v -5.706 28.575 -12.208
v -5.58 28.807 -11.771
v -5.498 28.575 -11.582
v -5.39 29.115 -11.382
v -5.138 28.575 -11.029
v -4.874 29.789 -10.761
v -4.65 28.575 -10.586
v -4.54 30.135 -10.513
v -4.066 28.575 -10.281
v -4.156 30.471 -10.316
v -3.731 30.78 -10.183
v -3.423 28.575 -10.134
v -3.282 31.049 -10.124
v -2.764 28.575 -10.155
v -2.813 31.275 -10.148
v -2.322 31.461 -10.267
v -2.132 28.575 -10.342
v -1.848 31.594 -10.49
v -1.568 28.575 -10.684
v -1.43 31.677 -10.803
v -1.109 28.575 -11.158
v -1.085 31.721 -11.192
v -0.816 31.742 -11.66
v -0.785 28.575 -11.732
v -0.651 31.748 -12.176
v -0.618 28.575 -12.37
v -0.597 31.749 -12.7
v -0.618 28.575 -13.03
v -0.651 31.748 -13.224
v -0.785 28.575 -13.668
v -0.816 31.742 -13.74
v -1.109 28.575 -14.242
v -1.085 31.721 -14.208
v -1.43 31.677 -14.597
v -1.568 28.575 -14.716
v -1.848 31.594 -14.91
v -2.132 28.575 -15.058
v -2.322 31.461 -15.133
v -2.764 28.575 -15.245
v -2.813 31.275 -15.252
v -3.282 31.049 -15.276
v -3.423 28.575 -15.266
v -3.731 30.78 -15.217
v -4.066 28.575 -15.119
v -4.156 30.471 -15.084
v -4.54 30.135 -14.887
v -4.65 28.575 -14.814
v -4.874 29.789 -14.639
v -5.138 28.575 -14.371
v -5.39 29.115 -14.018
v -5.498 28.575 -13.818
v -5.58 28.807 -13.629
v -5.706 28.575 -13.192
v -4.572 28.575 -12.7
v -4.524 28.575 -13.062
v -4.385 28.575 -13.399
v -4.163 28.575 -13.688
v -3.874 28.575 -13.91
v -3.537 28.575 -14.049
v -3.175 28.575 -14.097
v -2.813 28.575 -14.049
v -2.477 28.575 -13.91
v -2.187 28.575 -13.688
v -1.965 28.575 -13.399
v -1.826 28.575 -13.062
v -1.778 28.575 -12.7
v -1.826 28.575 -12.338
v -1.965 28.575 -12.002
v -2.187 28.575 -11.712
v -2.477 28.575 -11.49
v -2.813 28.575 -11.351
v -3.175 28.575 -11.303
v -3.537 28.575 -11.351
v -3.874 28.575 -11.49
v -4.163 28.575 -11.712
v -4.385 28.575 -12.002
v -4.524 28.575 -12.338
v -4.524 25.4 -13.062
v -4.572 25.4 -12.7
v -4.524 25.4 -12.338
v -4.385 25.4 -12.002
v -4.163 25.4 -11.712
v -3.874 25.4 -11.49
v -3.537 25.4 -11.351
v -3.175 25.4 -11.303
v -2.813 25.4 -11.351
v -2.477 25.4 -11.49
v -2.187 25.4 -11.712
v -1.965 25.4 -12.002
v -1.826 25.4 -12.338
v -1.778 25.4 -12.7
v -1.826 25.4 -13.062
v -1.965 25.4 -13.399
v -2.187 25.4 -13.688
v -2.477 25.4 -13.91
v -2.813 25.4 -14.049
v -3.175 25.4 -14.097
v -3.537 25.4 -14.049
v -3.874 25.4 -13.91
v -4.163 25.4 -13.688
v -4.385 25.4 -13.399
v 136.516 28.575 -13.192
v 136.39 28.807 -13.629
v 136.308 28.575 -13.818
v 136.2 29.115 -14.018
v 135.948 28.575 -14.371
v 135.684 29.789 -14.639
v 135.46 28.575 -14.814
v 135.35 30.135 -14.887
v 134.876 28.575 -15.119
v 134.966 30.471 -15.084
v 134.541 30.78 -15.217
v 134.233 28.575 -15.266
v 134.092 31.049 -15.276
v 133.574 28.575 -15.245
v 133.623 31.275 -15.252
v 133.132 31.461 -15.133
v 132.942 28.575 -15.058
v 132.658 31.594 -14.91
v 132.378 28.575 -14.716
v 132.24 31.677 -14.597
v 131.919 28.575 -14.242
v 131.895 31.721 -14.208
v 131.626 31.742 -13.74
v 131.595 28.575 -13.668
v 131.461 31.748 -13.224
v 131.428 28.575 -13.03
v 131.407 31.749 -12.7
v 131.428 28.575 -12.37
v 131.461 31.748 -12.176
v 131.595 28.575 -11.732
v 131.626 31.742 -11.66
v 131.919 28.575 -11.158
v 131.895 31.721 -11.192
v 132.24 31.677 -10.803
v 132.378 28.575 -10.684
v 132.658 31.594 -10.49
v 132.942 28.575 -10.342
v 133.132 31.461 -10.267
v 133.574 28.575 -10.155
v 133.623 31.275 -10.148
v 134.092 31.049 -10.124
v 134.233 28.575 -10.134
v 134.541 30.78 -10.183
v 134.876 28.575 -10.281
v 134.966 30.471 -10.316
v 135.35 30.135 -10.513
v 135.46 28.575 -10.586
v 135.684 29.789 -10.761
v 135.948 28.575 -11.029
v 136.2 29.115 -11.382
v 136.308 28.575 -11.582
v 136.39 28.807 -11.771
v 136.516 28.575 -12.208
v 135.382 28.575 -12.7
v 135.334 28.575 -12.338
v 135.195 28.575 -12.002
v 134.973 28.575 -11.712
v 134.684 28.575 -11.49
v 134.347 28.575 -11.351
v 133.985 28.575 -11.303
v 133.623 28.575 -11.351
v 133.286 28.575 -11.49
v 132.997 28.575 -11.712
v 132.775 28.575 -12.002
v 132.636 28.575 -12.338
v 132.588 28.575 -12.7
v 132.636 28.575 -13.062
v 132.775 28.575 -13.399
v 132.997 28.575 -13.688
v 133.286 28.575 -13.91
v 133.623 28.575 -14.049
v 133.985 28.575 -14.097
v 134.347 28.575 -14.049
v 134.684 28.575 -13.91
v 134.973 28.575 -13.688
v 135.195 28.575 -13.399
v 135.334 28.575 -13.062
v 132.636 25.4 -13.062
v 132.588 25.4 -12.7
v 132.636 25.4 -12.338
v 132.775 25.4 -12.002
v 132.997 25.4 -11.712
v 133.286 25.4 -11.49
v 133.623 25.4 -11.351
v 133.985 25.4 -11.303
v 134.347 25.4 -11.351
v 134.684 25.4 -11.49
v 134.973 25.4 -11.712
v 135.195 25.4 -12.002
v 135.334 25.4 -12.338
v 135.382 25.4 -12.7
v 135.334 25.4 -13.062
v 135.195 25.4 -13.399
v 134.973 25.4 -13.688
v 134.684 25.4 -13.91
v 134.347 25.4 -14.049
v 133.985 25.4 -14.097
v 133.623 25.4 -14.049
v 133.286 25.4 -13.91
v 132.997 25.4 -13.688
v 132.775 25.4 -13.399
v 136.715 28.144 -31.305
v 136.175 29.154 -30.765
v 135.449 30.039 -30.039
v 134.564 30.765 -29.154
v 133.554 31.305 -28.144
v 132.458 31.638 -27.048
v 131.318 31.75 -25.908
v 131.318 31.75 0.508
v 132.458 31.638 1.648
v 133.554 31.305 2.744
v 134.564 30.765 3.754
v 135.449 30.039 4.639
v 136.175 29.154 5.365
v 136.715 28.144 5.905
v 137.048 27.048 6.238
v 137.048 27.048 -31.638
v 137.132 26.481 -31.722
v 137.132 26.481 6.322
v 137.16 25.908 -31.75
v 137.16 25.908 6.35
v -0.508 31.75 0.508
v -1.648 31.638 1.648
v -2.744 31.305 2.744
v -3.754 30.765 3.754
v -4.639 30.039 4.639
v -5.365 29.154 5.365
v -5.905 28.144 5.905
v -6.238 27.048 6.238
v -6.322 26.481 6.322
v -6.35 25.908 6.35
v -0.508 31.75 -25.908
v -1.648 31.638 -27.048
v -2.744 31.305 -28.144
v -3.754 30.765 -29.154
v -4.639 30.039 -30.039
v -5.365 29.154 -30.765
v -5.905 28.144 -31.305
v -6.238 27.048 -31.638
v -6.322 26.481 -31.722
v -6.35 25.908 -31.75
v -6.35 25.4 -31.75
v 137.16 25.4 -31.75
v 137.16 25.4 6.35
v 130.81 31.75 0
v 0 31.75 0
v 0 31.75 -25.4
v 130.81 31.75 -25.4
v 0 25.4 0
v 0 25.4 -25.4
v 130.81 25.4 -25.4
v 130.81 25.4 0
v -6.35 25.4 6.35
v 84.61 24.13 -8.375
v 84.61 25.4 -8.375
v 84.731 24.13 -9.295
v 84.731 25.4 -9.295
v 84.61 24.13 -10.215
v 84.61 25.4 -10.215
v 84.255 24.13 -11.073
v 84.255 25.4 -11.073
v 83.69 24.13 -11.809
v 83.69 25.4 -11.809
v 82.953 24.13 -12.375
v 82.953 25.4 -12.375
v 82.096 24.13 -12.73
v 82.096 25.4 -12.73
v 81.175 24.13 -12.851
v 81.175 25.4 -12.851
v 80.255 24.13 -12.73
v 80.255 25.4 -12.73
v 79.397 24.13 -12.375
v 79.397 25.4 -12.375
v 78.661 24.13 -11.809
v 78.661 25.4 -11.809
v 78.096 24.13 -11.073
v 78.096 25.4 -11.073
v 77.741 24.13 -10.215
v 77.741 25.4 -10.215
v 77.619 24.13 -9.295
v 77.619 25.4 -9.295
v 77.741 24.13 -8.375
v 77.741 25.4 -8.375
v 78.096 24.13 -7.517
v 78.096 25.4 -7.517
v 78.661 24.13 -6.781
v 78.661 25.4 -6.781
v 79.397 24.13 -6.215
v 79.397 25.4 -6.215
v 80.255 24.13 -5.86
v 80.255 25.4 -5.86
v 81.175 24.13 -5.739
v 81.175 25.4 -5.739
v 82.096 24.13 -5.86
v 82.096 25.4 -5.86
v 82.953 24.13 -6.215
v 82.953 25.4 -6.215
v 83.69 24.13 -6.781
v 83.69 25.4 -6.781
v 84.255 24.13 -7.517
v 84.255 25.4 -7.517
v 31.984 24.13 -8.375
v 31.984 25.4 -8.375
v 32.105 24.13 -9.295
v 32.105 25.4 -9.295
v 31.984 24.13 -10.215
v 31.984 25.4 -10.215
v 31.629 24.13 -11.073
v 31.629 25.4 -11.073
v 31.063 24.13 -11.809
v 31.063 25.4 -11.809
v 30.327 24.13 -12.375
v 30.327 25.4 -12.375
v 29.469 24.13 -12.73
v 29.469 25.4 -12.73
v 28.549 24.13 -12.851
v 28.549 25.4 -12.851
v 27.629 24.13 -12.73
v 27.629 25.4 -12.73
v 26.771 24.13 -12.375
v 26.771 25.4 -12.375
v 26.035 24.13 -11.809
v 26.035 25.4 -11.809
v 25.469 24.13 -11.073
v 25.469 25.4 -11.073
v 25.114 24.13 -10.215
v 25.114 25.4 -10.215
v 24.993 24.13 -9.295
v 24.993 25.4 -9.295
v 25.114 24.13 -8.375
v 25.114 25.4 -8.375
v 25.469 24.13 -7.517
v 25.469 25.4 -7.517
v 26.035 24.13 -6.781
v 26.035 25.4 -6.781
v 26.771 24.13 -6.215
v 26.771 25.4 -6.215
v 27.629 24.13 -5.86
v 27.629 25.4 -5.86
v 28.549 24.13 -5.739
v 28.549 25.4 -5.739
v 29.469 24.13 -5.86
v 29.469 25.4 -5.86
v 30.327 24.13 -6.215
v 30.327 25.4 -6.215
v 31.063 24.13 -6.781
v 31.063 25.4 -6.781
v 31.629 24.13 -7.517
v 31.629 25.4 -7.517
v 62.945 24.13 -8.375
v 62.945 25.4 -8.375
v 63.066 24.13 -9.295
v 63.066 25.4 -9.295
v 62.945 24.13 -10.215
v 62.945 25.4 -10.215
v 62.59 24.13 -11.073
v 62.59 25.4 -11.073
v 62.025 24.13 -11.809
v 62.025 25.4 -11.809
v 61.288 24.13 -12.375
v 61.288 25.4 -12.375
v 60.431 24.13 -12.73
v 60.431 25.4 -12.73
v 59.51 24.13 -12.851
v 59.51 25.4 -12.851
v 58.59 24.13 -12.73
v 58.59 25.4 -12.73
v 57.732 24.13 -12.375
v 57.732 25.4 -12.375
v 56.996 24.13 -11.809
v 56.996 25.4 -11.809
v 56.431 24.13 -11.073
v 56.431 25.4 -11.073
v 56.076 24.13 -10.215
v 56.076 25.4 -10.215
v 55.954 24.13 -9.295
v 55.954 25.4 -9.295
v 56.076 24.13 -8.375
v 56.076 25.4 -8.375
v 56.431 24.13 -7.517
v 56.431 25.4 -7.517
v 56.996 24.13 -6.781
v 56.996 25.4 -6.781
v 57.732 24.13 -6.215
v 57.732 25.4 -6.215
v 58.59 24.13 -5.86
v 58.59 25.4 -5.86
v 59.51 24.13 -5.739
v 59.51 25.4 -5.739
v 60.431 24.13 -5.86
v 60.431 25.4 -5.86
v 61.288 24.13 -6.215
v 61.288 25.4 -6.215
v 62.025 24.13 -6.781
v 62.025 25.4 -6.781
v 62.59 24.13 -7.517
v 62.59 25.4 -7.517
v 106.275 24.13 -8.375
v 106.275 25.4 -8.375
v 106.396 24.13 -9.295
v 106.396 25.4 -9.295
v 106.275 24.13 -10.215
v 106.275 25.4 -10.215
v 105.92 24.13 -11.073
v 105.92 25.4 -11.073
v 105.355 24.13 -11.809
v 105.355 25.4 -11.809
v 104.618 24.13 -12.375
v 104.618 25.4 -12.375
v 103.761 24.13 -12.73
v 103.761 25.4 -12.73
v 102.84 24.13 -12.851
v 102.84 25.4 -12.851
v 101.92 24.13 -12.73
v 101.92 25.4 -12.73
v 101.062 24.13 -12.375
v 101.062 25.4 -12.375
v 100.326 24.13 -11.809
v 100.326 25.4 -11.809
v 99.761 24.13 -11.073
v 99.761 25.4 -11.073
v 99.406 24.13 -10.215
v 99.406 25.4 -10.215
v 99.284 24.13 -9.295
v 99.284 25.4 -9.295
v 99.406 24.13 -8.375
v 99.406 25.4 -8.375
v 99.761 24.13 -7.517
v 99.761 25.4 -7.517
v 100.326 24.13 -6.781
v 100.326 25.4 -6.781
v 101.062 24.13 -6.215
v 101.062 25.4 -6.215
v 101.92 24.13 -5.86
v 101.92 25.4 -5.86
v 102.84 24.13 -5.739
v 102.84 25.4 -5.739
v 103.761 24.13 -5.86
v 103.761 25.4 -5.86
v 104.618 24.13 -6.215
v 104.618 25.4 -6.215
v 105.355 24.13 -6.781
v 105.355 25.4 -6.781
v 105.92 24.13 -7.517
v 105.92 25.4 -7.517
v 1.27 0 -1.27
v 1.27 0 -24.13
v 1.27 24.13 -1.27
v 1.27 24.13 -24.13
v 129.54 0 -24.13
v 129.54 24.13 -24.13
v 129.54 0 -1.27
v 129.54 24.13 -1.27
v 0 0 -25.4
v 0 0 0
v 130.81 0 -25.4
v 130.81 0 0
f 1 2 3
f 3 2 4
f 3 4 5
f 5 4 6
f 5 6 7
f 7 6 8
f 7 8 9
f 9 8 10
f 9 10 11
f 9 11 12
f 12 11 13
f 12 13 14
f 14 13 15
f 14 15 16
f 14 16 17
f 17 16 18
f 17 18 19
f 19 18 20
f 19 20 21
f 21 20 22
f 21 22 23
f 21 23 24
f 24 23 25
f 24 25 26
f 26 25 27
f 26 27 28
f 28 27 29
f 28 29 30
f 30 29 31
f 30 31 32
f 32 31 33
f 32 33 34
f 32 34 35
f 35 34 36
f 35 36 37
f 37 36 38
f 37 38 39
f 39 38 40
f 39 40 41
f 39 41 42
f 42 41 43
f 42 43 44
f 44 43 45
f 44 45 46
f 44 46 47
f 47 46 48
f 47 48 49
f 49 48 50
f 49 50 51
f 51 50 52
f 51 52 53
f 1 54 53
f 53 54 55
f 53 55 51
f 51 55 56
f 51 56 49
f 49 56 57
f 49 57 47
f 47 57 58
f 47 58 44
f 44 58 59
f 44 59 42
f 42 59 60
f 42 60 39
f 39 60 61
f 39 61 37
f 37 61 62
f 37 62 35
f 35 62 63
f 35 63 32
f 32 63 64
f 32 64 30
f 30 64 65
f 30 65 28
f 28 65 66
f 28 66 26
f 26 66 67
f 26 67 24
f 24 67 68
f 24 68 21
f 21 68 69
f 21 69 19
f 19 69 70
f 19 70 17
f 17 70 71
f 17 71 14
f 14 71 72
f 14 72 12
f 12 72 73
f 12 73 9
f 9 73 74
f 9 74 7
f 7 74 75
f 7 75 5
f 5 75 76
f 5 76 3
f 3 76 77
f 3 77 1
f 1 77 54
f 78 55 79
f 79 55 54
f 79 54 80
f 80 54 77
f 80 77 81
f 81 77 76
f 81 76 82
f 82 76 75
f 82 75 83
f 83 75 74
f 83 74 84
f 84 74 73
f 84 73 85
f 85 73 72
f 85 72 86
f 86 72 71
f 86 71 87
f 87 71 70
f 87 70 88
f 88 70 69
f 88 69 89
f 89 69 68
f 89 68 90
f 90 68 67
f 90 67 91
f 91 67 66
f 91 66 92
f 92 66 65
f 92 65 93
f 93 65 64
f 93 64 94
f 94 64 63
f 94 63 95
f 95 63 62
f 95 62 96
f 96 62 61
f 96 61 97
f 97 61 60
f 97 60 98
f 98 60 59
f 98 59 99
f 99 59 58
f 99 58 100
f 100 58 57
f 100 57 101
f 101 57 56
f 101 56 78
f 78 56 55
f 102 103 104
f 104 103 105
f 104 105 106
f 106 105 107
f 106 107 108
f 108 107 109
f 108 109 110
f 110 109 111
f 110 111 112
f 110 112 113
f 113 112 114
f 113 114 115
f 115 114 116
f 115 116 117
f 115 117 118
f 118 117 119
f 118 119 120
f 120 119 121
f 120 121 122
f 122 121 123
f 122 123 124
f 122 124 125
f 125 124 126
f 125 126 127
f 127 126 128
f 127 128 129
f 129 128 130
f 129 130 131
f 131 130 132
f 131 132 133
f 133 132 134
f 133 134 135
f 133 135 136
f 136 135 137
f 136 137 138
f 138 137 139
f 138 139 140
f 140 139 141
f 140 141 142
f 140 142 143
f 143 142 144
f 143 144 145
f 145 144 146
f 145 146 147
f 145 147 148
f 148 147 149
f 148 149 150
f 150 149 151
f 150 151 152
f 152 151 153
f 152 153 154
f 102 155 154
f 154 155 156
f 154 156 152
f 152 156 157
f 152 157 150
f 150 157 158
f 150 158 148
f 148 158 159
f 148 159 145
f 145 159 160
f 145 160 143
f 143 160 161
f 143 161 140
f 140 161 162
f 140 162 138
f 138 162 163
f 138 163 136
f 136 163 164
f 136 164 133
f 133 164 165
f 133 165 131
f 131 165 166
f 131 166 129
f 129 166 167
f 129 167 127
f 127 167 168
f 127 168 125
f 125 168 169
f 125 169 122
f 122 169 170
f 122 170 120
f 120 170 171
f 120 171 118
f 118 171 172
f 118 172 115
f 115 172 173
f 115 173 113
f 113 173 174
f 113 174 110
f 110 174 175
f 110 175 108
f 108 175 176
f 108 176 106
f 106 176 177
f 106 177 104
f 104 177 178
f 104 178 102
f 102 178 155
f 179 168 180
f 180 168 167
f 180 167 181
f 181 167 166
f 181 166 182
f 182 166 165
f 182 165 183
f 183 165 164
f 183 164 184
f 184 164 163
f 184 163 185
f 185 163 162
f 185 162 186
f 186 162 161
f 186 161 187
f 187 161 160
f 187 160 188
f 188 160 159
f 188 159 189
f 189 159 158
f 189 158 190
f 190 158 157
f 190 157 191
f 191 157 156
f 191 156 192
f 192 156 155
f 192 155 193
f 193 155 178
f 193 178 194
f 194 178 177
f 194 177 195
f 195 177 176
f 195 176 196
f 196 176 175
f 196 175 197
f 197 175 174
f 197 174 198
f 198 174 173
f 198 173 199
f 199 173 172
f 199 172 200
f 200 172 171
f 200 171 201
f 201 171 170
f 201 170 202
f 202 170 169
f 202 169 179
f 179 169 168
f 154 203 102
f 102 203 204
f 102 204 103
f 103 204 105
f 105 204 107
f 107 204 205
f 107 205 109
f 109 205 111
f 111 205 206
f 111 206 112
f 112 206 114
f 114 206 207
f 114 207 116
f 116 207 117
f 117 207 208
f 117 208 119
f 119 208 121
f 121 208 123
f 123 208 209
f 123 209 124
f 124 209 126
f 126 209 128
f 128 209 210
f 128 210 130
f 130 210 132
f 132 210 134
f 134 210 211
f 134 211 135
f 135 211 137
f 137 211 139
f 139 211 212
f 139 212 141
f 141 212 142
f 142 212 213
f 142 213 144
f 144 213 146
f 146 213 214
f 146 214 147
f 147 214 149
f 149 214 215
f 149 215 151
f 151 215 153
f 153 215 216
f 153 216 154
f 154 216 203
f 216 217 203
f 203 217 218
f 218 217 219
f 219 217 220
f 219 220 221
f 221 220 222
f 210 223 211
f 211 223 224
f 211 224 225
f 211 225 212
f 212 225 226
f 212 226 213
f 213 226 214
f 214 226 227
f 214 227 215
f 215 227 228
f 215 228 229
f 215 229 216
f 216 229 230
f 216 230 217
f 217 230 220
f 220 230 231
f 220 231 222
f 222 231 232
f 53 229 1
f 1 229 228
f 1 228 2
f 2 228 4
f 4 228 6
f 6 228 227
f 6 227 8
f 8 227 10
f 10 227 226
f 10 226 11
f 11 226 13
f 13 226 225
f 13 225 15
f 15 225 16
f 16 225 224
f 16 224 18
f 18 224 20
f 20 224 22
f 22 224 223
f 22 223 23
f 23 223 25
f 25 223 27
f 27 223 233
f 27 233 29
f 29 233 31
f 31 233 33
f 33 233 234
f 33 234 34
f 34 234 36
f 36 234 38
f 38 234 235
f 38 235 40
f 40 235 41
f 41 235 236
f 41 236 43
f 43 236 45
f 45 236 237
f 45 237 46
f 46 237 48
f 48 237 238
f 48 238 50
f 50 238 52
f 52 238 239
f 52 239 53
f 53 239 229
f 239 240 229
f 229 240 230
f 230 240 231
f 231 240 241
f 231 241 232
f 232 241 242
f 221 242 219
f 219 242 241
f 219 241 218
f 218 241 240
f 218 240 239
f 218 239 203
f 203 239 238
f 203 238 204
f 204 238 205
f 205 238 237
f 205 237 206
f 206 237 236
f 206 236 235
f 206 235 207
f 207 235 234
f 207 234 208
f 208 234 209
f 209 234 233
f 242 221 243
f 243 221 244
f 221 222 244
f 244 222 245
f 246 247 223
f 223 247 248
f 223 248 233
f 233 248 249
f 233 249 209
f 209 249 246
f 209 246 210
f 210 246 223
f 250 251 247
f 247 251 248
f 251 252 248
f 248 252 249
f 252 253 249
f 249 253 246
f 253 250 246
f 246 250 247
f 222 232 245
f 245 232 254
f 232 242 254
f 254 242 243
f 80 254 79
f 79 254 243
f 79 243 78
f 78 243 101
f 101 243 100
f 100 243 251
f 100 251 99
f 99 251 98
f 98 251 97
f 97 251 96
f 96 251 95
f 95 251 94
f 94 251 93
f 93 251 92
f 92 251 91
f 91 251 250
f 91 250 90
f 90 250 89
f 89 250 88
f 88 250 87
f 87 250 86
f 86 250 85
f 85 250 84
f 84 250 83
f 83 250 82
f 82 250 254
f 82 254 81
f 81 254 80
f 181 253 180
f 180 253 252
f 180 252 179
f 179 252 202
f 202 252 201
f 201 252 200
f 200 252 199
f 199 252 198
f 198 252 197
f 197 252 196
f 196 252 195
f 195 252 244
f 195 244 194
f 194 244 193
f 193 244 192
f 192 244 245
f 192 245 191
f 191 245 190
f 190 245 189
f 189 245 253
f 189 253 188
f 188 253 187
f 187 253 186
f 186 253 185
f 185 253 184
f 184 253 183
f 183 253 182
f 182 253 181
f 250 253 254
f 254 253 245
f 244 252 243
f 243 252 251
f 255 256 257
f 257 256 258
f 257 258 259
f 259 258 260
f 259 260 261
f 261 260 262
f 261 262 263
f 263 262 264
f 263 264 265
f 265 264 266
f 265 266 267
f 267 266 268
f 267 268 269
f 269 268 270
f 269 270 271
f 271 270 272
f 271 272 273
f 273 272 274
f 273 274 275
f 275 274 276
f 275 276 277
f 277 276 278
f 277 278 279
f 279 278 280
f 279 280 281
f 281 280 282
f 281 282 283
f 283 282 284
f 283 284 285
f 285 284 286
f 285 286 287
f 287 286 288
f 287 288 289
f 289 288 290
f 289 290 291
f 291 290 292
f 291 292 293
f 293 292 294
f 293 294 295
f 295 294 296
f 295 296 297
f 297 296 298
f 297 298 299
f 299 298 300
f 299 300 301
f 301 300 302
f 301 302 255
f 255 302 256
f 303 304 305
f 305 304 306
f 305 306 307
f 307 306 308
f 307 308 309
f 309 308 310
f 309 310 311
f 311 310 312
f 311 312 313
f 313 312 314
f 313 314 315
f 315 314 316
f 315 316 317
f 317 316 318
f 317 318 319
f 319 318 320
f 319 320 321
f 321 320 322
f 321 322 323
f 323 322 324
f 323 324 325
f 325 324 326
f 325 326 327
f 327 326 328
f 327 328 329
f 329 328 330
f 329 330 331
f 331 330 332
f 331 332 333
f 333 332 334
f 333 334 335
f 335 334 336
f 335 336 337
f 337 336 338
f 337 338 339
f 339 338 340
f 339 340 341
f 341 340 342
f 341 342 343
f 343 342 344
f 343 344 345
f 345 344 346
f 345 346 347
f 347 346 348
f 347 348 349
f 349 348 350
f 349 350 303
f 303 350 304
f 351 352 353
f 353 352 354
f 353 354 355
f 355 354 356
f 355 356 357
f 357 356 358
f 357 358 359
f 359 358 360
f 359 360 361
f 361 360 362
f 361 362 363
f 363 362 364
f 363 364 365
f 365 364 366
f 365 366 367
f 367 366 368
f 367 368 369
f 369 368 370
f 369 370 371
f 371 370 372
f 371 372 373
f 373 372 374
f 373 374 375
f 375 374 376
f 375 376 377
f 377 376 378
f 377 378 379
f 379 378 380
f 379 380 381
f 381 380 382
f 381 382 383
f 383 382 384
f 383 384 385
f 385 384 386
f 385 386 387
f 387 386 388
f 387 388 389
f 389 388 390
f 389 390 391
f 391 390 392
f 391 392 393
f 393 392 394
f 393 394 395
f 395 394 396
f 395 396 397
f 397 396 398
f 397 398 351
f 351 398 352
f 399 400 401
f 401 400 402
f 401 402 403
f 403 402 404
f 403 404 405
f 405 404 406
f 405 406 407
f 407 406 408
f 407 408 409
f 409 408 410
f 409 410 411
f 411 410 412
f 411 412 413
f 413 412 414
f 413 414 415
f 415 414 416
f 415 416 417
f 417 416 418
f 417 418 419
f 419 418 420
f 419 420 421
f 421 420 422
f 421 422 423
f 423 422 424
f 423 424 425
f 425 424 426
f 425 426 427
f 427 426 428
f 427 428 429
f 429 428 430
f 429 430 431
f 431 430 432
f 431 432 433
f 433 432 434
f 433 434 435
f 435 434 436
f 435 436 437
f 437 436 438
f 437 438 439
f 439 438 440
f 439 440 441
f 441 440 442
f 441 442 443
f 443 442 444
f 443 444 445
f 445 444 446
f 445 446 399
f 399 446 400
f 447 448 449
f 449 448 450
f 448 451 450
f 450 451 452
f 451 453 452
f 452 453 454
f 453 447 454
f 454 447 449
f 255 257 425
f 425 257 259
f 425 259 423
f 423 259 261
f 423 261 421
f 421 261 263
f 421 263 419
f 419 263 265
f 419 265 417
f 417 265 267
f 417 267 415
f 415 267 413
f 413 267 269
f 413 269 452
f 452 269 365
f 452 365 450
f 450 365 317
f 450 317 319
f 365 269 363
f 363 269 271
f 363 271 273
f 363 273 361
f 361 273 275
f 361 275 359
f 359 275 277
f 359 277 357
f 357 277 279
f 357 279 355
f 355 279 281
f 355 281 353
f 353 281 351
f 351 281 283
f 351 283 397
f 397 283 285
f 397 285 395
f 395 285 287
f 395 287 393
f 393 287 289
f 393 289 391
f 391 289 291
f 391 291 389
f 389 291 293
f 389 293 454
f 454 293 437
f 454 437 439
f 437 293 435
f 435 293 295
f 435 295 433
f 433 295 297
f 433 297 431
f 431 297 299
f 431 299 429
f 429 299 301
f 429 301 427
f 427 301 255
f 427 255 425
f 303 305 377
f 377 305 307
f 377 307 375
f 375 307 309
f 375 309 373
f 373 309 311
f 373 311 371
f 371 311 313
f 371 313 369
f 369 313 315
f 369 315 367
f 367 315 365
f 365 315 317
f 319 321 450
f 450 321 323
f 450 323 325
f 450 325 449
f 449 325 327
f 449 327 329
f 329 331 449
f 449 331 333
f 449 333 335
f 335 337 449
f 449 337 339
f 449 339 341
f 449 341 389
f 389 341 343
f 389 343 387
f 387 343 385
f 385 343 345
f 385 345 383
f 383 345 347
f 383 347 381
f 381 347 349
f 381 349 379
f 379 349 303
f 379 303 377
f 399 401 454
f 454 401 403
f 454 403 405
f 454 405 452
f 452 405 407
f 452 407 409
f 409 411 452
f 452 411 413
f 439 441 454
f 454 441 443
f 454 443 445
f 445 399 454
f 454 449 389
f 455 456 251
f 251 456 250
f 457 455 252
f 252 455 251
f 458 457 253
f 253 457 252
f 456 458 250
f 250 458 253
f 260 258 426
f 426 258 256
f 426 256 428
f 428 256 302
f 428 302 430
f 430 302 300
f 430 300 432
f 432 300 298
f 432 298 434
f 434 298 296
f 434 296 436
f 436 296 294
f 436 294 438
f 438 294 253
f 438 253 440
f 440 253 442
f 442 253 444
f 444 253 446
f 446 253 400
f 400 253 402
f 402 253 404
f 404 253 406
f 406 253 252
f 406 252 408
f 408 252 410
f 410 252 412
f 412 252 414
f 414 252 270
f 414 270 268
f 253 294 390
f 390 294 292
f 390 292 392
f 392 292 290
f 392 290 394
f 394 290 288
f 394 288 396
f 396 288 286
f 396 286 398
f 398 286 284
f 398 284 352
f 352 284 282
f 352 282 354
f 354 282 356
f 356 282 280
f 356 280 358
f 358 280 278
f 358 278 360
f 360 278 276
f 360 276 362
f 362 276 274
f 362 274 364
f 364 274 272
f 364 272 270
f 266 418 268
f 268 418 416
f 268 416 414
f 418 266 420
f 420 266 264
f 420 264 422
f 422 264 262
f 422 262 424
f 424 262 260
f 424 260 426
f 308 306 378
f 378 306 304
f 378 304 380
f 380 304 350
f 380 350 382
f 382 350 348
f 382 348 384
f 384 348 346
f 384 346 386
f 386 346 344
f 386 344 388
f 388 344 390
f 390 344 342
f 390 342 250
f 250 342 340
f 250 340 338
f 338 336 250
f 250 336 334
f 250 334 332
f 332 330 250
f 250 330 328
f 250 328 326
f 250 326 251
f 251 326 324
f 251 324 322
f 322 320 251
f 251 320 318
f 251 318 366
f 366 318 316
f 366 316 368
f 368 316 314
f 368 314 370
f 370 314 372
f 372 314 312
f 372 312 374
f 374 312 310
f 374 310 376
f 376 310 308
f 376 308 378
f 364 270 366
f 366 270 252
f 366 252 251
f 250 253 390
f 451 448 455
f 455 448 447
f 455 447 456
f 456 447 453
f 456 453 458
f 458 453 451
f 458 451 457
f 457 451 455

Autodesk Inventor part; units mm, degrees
ref_plane "YZ Plane" through (0, 0, 0) normal (1, 0, 0) x (0, 1, 0)
ref_plane "XZ Plane" through (0, 0, 0) normal (0, 1, 0) x (-1, 0, 0)
sketch "Sketch1" plane through (0, 0, 0) normal (0, 1, 0) x (-1, 0, 0)
  line L0 (0, 0) -> (-130.81, 0)
  line L1 (-130.81, 0) -> (-130.81, -25.4)
  line L2 (-130.81, -25.4) -> (0, -25.4)
  line L3 (0, -25.4) -> (0, 0)
  dimension "d0" = 130.81
  dimension "d1" = 25.4
extrude "Extrusion1" add sketch "Sketch1" along normal blind 25.4
shell "Shell1" thickness 1.27 removed faces 1 at (87.2067, 0, -8.4667)
sketch "Sketch2" plane through (0, 25.4, 0) normal (0, 1, 0) x (1, 0, 0)
  circle A0 centre (28.549, 9.295) radius 3 projected
  circle A1 centre (59.5104, 9.295) radius 3 projected
  circle A2 centre (81.1754, 9.295) radius 3 projected
  circle A3 centre (102.8404, 9.295) radius 3 projected
  circle A4 centre (28.549, 9.295) radius 3.556
  circle A5 centre (59.5104, 9.295) radius 3.556
  circle A6 centre (81.1754, 9.295) radius 3.556
  circle A7 centre (102.8404, 9.295) radius 3.556
  point P0 (0, 0)
  dimension "d5" = 7.112
  dimension "d6" = 7.112
  dimension "d7" = 7.112
  dimension "d8" = 7.112
extrude "Extrusion2" cut sketch "Sketch2" against normal blind 25.4 contours A0 | A1 | A2 | A3 | A4 | A5 | A6 | A7
sketch "Sketch3" plane through (0, 25.4, 0) normal (0, 1, 0) x (1, 0, 0)
  circle A0 centre (81.1754, 9.295) radius 3.556 projected
  circle A1 centre (28.549, 9.295) radius 3.556 projected
  circle A2 centre (59.5104, 9.295) radius 3.556 projected
  circle A3 centre (102.8404, 9.295) radius 3.556 projected
  line L0 (0, 0) -> (130.81, 0) projected
  line L1 (130.81, 0) -> (130.81, 25.4) projected
  line L2 (130.81, 25.4) -> (0, 25.4) projected
  line L3 (0, 25.4) -> (0, 0) projected
  line L4 (-6.35, 31.75) -> (137.16, 31.75)
  line L5 (137.16, 31.75) -> (137.16, -6.35)
  line L6 (137.16, -6.35) -> (-6.35, -6.35)
  line L7 (-6.35, -6.35) -> (-6.35, 31.75)
  dimension "d11" = 6.35
extrude "Extrusion3" add sketch "Sketch3" along normal blind 6.35 contours L4 L5 L6 L7
fillet "Fillet1" radius 5.842 4 edges at (-6.35, 31.75, -12.7) (65.405, 31.75, -31.75) (65.405, 31.75, 6.35) (137.16, 31.75, -12.7)
ref_plane "Work Plane1" through (0, 31.75, 0) normal (0, -1, 0) x (1, 0, 0)
sketch "Sketch4" plane through (0, 31.75, 0) normal (0, -1, 0) x (1, 0, 0)
  line L0 (0, -25.4) -> (0, 0) projected
  line L1 (0, 0) -> (130.81, 0) projected
  line L2 (130.81, 0) -> (130.81, -25.4) projected
  line L3 (130.81, -25.4) -> (0, -25.4) projected
  line L4 (-6.35, -31.75) -> (137.16, -31.75) projected
  line L5 (137.16, -31.75) -> (137.16, 6.35) projected
  line L6 (137.16, 6.35) -> (-6.35, 6.35) projected
  line L7 (-6.35, 6.35) -> (-6.35, -31.75) projected
  point P0 (-3.175, -12.7)
  point P1 (133.985, -12.7)
  dimension "d25" = 19.05
  dimension "d26" = 3.175
  dimension "d27" = 19.05
  dimension "d28" = 3.175
hole "Hole2" at (-3.175, 31.75, -12.7) at (133.985, 31.75, -12.7) direction (0, -1, 0) diameter 2.794 end through all counterbore diameter 5.1562 counterbore depth 3.175 clearance for "Socket Head Cap Screw" size "#3" standard "Ansi Unified Screw Threads"
properties part number "Bessel"
